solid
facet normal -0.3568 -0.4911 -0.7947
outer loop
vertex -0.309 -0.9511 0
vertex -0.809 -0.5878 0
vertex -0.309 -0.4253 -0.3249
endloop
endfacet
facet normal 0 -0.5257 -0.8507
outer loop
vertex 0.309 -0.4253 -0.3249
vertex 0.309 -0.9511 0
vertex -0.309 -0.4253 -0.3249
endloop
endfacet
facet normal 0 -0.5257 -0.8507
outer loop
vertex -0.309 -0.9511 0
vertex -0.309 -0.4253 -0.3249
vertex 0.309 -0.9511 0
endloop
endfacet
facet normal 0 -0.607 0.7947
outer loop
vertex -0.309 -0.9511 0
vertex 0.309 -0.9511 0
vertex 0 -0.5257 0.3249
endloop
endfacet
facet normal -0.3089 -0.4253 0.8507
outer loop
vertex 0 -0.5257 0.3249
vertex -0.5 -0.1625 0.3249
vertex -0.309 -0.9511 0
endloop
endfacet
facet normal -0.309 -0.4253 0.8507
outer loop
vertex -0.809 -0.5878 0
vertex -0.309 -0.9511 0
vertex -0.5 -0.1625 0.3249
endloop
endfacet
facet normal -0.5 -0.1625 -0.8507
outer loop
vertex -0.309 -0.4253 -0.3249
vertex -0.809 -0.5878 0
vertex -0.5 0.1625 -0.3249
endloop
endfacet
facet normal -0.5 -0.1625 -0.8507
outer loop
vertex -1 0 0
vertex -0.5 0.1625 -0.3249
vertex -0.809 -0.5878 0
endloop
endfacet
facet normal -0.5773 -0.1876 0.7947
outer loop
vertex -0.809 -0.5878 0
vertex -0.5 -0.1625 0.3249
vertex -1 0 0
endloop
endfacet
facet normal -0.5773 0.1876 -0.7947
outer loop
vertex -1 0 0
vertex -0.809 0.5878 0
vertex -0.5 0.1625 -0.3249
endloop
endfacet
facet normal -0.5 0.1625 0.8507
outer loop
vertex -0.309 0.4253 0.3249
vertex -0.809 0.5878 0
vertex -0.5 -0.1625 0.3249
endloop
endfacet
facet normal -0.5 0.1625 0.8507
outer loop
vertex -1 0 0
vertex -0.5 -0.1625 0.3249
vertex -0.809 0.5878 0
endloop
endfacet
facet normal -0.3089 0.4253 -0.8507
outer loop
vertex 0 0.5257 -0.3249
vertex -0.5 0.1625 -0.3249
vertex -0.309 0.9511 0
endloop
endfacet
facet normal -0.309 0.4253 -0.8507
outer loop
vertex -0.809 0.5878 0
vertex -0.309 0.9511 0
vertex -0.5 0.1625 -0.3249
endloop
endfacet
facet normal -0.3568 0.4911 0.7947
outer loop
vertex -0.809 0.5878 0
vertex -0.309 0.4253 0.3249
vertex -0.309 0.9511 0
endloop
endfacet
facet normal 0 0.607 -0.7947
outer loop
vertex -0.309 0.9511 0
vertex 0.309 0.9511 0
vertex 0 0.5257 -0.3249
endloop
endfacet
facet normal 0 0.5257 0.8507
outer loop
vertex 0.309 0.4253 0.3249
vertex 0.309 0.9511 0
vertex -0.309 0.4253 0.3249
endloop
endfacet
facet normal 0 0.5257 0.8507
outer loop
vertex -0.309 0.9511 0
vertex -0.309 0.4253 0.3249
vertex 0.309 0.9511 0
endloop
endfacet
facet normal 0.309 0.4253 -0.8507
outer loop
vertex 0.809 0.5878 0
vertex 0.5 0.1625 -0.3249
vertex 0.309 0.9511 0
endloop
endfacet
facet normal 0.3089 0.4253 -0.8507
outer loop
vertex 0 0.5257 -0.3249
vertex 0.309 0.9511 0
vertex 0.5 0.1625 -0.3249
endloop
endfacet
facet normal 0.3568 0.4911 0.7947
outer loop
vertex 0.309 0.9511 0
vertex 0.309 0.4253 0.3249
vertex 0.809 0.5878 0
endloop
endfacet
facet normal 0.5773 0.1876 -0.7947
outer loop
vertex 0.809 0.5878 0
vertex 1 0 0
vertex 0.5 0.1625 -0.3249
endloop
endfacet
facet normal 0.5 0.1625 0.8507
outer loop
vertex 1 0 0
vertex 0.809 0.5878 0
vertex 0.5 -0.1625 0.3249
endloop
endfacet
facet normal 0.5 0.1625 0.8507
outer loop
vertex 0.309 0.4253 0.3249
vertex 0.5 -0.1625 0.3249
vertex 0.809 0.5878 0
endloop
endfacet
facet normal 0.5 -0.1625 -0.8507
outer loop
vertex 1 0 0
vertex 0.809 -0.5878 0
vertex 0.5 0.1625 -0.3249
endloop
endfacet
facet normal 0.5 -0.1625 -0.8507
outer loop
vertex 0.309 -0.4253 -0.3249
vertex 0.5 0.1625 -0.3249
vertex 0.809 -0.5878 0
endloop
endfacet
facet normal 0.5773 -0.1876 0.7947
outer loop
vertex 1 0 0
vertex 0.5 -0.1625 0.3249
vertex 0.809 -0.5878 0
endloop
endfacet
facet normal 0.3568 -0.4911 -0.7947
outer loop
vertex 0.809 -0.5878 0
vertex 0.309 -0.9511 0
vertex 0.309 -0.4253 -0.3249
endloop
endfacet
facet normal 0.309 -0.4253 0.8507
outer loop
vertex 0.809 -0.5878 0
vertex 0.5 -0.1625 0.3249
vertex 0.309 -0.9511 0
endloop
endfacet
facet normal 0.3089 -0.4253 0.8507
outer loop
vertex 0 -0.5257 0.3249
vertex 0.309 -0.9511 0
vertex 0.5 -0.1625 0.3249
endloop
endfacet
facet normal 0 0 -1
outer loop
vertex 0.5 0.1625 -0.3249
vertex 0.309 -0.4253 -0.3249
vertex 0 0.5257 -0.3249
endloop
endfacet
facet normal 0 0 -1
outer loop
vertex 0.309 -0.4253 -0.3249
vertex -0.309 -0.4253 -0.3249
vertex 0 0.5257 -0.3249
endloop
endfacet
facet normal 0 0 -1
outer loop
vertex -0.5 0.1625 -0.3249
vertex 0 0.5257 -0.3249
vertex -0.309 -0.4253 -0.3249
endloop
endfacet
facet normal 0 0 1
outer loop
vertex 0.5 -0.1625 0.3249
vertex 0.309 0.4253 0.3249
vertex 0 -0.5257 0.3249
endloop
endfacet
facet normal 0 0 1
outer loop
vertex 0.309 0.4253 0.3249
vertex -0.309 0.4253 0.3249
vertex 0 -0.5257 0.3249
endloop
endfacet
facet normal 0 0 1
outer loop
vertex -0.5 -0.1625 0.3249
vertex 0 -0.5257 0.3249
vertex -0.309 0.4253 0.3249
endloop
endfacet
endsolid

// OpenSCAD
polyhedron( points = [[-0.30901699371704, -0.951056516160272, -1.02923334596902e-17], [-0.809016993587403, -0.587785252196902, -1.02923334596902e-17], [-0.999999999482833, -1.58589763191418e-11, -1.02923334596902e-17], [-0.80901699442893, 0.587785252148031, -1.02923334596902e-17], [-0.30901699507866, 0.951056516066503, -1.02923334596902e-17], [0.309016993201654, 0.951056516066509, -1.02923334596902e-17], [0.809016993104634, 0.587785252148031, -1.02923334596902e-17], [0.999999999052845, -1.58589763191418e-11, -1.02923334596902e-17], [0.809016994051727, -0.587785252196899, -1.02923334596902e-17], [0.309016994734073, -0.951056516160272, -1.02923334596902e-17], [-0.309016993689292, -0.425325403586065, -0.324919695608693], [-0.499999999170882, 0.162459847802778, -0.324919695948907], [5.71743377850285e-10, 0.525731111512874, -0.324919695948907], [0.500000000226991, 0.162459847682515, -0.324919695948908], [0.309016994555212, -0.425325403714609, -0.324919695529248], [5.24535463355167e-10, -0.525731111504437, 0.324919695608693], [0.499999999488891, -0.162459848084009, 0.324919695948907], [0.309016993547933, 0.425325403996638, 0.324919695948907], [-0.309016994650966, 0.425325403977801, 0.324919695948908], [-0.499999999254234, -0.1624598477665, 0.324919695529248]], faces = [[0, 1, 10], [0, 10, 14, 9], [0, 9, 15], [0, 15, 19, 1], [1, 2, 11, 10], [1, 19, 2], [2, 3, 11], [2, 19, 18, 3], [3, 4, 12, 11], [3, 18, 4], [4, 5, 12], [4, 18, 17, 5], [5, 6, 13, 12], [5, 17, 6], [6, 7, 13], [6, 17, 16, 7], [7, 8, 14, 13], [7, 16, 8], [8, 9, 14], [8, 16, 15, 9], [10, 11, 12, 13, 14], [15, 16, 17, 18, 19]]);
